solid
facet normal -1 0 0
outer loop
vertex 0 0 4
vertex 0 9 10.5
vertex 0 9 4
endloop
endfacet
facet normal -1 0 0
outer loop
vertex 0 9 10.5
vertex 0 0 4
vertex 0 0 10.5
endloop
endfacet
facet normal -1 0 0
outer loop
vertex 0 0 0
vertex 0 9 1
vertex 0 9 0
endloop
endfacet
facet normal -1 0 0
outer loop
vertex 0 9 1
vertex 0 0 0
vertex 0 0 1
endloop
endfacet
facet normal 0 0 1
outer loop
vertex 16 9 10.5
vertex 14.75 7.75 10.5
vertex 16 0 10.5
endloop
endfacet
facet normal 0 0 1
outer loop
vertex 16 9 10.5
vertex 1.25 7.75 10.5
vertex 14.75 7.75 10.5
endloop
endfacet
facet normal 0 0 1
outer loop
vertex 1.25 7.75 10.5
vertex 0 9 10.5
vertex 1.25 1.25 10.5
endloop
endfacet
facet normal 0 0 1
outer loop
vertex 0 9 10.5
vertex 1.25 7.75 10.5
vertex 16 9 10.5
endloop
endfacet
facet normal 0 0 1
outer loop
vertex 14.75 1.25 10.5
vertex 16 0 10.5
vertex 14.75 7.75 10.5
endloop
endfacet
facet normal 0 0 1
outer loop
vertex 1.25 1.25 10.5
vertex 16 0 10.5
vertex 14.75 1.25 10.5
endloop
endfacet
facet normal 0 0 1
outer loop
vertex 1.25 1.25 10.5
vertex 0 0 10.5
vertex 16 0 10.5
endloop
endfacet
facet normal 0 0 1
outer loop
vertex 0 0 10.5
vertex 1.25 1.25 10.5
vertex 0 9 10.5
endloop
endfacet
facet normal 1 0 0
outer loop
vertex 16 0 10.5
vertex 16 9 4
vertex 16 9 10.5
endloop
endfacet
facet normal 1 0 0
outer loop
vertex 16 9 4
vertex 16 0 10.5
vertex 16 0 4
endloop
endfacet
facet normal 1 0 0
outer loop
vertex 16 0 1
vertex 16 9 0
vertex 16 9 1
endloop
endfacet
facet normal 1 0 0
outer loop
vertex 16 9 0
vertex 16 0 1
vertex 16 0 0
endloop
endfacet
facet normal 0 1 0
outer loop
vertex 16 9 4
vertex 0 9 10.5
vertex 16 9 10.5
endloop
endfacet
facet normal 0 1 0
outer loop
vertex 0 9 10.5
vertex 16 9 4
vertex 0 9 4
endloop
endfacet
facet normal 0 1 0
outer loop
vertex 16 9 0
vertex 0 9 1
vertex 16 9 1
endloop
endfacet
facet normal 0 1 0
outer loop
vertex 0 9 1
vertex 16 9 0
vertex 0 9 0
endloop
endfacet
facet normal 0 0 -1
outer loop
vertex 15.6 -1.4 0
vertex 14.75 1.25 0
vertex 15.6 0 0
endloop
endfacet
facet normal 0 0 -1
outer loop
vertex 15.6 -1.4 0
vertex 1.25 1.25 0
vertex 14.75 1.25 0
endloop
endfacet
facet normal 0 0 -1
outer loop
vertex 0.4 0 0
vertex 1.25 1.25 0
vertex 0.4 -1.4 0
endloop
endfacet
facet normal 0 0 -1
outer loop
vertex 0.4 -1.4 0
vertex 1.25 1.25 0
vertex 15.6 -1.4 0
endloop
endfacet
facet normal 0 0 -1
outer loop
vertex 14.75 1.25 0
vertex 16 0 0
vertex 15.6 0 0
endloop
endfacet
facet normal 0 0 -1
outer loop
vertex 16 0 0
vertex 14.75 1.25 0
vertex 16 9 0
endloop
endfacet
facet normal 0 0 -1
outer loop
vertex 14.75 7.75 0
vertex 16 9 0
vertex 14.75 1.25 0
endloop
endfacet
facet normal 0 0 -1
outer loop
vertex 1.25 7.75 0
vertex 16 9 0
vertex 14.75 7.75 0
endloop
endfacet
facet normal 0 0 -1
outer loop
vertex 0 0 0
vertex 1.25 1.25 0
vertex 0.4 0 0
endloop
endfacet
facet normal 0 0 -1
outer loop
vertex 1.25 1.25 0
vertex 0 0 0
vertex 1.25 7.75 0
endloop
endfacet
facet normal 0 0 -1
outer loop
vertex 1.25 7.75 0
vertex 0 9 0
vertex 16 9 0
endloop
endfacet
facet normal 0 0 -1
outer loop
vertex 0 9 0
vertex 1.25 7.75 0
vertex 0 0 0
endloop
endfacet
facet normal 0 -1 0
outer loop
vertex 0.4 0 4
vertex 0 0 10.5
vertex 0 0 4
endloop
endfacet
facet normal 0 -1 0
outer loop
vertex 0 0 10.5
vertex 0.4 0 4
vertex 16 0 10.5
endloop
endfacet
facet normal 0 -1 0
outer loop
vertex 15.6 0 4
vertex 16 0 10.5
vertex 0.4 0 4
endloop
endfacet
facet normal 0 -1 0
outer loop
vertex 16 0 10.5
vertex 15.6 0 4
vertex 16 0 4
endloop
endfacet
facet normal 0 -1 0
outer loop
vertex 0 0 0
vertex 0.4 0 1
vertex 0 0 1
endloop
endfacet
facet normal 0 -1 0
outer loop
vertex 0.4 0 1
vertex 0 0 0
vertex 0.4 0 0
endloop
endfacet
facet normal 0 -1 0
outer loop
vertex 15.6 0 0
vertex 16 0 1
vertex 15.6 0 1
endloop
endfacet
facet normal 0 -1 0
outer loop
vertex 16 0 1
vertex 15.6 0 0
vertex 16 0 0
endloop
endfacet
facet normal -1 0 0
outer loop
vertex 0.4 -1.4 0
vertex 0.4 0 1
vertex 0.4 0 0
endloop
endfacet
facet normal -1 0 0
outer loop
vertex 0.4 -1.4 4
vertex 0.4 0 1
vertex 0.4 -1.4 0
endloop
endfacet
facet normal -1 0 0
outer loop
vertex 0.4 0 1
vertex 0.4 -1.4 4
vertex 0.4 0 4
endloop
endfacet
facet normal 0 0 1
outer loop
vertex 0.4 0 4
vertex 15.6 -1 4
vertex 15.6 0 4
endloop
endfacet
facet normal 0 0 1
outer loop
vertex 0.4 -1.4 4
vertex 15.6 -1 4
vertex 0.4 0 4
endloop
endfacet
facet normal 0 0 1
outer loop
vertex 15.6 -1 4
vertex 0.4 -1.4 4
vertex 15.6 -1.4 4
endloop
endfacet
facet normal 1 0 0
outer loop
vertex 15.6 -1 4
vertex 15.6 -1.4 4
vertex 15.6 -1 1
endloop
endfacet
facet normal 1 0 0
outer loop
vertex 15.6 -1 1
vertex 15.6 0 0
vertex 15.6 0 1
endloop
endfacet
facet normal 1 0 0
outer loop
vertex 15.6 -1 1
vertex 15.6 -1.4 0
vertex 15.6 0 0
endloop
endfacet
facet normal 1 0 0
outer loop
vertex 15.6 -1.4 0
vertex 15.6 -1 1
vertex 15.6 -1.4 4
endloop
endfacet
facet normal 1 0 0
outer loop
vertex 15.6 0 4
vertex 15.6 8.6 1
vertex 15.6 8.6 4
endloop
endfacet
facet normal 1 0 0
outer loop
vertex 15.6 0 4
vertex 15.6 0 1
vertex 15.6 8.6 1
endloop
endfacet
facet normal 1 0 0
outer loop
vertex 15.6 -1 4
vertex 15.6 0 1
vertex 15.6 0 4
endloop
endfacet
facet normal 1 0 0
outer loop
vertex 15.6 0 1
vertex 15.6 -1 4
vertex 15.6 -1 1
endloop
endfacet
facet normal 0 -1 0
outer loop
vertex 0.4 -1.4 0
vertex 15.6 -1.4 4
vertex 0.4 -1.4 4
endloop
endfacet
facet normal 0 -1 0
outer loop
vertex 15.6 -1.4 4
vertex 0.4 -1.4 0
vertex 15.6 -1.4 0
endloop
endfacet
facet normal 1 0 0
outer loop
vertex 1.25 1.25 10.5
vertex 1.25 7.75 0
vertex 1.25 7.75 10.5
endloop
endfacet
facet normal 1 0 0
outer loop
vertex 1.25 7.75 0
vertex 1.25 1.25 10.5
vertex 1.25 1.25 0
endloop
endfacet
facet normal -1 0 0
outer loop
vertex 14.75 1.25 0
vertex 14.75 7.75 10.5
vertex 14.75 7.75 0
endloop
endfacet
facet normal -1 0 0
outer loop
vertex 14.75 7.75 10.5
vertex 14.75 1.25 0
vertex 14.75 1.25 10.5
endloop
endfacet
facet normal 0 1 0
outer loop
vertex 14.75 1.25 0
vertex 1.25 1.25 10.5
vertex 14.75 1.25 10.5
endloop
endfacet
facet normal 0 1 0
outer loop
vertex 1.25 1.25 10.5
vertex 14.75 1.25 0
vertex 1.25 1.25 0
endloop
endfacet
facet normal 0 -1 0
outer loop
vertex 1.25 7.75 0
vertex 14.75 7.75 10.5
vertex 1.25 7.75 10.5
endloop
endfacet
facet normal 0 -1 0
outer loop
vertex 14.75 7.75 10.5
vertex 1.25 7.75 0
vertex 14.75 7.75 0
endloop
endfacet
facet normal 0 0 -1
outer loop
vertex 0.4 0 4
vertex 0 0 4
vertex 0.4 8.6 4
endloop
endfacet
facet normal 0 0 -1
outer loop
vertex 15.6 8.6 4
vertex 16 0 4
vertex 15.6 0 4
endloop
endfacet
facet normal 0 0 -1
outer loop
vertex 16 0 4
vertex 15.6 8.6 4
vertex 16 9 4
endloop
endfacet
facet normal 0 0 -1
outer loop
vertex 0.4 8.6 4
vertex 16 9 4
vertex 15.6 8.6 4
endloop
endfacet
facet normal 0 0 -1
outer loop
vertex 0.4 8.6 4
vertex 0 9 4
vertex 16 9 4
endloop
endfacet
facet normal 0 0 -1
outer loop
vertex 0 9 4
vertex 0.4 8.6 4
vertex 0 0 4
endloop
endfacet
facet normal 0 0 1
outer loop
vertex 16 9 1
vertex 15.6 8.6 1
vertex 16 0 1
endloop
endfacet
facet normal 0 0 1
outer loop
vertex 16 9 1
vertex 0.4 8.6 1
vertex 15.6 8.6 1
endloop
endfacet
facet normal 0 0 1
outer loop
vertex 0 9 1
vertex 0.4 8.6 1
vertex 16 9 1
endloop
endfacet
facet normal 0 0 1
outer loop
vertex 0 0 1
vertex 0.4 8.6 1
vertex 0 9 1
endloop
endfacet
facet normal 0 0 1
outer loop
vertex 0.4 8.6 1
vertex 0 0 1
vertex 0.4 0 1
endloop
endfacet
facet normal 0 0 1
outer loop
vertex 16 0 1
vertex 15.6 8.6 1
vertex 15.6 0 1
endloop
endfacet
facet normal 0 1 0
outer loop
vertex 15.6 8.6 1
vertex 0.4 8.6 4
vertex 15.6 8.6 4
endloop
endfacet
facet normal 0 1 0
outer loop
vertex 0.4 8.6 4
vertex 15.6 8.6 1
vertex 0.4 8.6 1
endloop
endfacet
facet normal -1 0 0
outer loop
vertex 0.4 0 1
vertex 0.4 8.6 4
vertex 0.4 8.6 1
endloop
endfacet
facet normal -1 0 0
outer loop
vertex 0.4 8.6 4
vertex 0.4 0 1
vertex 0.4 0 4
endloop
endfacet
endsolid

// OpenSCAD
usb_size = [13.5, 6.5, 12];
housing_size = [16, 9, 10.5];

hole_depth = 0.4;

difference() {
    union() {
        cube(housing_size);
        
        translate([hole_depth, -1.4, 0])
            cube([housing_size[0]-hole_depth*2, 1.5, 4]);
    }
    
    translate([(housing_size[0]-usb_size[0])/2, (housing_size[1]-usb_size[1])/2, -1])
            cube(usb_size);
    
    translate([-1, housing_size[1]-hole_depth, 1])
        cube([housing_size[0]+2, hole_depth+.1, 3]);
    
    translate([-.1, 0, 1])
        cube([hole_depth+.1, housing_size[1]+2, 3]);
    
    translate([housing_size[0]-hole_depth, -1, 1])
        cube([hole_depth+.1, housing_size[1]+2, 3]);
}
